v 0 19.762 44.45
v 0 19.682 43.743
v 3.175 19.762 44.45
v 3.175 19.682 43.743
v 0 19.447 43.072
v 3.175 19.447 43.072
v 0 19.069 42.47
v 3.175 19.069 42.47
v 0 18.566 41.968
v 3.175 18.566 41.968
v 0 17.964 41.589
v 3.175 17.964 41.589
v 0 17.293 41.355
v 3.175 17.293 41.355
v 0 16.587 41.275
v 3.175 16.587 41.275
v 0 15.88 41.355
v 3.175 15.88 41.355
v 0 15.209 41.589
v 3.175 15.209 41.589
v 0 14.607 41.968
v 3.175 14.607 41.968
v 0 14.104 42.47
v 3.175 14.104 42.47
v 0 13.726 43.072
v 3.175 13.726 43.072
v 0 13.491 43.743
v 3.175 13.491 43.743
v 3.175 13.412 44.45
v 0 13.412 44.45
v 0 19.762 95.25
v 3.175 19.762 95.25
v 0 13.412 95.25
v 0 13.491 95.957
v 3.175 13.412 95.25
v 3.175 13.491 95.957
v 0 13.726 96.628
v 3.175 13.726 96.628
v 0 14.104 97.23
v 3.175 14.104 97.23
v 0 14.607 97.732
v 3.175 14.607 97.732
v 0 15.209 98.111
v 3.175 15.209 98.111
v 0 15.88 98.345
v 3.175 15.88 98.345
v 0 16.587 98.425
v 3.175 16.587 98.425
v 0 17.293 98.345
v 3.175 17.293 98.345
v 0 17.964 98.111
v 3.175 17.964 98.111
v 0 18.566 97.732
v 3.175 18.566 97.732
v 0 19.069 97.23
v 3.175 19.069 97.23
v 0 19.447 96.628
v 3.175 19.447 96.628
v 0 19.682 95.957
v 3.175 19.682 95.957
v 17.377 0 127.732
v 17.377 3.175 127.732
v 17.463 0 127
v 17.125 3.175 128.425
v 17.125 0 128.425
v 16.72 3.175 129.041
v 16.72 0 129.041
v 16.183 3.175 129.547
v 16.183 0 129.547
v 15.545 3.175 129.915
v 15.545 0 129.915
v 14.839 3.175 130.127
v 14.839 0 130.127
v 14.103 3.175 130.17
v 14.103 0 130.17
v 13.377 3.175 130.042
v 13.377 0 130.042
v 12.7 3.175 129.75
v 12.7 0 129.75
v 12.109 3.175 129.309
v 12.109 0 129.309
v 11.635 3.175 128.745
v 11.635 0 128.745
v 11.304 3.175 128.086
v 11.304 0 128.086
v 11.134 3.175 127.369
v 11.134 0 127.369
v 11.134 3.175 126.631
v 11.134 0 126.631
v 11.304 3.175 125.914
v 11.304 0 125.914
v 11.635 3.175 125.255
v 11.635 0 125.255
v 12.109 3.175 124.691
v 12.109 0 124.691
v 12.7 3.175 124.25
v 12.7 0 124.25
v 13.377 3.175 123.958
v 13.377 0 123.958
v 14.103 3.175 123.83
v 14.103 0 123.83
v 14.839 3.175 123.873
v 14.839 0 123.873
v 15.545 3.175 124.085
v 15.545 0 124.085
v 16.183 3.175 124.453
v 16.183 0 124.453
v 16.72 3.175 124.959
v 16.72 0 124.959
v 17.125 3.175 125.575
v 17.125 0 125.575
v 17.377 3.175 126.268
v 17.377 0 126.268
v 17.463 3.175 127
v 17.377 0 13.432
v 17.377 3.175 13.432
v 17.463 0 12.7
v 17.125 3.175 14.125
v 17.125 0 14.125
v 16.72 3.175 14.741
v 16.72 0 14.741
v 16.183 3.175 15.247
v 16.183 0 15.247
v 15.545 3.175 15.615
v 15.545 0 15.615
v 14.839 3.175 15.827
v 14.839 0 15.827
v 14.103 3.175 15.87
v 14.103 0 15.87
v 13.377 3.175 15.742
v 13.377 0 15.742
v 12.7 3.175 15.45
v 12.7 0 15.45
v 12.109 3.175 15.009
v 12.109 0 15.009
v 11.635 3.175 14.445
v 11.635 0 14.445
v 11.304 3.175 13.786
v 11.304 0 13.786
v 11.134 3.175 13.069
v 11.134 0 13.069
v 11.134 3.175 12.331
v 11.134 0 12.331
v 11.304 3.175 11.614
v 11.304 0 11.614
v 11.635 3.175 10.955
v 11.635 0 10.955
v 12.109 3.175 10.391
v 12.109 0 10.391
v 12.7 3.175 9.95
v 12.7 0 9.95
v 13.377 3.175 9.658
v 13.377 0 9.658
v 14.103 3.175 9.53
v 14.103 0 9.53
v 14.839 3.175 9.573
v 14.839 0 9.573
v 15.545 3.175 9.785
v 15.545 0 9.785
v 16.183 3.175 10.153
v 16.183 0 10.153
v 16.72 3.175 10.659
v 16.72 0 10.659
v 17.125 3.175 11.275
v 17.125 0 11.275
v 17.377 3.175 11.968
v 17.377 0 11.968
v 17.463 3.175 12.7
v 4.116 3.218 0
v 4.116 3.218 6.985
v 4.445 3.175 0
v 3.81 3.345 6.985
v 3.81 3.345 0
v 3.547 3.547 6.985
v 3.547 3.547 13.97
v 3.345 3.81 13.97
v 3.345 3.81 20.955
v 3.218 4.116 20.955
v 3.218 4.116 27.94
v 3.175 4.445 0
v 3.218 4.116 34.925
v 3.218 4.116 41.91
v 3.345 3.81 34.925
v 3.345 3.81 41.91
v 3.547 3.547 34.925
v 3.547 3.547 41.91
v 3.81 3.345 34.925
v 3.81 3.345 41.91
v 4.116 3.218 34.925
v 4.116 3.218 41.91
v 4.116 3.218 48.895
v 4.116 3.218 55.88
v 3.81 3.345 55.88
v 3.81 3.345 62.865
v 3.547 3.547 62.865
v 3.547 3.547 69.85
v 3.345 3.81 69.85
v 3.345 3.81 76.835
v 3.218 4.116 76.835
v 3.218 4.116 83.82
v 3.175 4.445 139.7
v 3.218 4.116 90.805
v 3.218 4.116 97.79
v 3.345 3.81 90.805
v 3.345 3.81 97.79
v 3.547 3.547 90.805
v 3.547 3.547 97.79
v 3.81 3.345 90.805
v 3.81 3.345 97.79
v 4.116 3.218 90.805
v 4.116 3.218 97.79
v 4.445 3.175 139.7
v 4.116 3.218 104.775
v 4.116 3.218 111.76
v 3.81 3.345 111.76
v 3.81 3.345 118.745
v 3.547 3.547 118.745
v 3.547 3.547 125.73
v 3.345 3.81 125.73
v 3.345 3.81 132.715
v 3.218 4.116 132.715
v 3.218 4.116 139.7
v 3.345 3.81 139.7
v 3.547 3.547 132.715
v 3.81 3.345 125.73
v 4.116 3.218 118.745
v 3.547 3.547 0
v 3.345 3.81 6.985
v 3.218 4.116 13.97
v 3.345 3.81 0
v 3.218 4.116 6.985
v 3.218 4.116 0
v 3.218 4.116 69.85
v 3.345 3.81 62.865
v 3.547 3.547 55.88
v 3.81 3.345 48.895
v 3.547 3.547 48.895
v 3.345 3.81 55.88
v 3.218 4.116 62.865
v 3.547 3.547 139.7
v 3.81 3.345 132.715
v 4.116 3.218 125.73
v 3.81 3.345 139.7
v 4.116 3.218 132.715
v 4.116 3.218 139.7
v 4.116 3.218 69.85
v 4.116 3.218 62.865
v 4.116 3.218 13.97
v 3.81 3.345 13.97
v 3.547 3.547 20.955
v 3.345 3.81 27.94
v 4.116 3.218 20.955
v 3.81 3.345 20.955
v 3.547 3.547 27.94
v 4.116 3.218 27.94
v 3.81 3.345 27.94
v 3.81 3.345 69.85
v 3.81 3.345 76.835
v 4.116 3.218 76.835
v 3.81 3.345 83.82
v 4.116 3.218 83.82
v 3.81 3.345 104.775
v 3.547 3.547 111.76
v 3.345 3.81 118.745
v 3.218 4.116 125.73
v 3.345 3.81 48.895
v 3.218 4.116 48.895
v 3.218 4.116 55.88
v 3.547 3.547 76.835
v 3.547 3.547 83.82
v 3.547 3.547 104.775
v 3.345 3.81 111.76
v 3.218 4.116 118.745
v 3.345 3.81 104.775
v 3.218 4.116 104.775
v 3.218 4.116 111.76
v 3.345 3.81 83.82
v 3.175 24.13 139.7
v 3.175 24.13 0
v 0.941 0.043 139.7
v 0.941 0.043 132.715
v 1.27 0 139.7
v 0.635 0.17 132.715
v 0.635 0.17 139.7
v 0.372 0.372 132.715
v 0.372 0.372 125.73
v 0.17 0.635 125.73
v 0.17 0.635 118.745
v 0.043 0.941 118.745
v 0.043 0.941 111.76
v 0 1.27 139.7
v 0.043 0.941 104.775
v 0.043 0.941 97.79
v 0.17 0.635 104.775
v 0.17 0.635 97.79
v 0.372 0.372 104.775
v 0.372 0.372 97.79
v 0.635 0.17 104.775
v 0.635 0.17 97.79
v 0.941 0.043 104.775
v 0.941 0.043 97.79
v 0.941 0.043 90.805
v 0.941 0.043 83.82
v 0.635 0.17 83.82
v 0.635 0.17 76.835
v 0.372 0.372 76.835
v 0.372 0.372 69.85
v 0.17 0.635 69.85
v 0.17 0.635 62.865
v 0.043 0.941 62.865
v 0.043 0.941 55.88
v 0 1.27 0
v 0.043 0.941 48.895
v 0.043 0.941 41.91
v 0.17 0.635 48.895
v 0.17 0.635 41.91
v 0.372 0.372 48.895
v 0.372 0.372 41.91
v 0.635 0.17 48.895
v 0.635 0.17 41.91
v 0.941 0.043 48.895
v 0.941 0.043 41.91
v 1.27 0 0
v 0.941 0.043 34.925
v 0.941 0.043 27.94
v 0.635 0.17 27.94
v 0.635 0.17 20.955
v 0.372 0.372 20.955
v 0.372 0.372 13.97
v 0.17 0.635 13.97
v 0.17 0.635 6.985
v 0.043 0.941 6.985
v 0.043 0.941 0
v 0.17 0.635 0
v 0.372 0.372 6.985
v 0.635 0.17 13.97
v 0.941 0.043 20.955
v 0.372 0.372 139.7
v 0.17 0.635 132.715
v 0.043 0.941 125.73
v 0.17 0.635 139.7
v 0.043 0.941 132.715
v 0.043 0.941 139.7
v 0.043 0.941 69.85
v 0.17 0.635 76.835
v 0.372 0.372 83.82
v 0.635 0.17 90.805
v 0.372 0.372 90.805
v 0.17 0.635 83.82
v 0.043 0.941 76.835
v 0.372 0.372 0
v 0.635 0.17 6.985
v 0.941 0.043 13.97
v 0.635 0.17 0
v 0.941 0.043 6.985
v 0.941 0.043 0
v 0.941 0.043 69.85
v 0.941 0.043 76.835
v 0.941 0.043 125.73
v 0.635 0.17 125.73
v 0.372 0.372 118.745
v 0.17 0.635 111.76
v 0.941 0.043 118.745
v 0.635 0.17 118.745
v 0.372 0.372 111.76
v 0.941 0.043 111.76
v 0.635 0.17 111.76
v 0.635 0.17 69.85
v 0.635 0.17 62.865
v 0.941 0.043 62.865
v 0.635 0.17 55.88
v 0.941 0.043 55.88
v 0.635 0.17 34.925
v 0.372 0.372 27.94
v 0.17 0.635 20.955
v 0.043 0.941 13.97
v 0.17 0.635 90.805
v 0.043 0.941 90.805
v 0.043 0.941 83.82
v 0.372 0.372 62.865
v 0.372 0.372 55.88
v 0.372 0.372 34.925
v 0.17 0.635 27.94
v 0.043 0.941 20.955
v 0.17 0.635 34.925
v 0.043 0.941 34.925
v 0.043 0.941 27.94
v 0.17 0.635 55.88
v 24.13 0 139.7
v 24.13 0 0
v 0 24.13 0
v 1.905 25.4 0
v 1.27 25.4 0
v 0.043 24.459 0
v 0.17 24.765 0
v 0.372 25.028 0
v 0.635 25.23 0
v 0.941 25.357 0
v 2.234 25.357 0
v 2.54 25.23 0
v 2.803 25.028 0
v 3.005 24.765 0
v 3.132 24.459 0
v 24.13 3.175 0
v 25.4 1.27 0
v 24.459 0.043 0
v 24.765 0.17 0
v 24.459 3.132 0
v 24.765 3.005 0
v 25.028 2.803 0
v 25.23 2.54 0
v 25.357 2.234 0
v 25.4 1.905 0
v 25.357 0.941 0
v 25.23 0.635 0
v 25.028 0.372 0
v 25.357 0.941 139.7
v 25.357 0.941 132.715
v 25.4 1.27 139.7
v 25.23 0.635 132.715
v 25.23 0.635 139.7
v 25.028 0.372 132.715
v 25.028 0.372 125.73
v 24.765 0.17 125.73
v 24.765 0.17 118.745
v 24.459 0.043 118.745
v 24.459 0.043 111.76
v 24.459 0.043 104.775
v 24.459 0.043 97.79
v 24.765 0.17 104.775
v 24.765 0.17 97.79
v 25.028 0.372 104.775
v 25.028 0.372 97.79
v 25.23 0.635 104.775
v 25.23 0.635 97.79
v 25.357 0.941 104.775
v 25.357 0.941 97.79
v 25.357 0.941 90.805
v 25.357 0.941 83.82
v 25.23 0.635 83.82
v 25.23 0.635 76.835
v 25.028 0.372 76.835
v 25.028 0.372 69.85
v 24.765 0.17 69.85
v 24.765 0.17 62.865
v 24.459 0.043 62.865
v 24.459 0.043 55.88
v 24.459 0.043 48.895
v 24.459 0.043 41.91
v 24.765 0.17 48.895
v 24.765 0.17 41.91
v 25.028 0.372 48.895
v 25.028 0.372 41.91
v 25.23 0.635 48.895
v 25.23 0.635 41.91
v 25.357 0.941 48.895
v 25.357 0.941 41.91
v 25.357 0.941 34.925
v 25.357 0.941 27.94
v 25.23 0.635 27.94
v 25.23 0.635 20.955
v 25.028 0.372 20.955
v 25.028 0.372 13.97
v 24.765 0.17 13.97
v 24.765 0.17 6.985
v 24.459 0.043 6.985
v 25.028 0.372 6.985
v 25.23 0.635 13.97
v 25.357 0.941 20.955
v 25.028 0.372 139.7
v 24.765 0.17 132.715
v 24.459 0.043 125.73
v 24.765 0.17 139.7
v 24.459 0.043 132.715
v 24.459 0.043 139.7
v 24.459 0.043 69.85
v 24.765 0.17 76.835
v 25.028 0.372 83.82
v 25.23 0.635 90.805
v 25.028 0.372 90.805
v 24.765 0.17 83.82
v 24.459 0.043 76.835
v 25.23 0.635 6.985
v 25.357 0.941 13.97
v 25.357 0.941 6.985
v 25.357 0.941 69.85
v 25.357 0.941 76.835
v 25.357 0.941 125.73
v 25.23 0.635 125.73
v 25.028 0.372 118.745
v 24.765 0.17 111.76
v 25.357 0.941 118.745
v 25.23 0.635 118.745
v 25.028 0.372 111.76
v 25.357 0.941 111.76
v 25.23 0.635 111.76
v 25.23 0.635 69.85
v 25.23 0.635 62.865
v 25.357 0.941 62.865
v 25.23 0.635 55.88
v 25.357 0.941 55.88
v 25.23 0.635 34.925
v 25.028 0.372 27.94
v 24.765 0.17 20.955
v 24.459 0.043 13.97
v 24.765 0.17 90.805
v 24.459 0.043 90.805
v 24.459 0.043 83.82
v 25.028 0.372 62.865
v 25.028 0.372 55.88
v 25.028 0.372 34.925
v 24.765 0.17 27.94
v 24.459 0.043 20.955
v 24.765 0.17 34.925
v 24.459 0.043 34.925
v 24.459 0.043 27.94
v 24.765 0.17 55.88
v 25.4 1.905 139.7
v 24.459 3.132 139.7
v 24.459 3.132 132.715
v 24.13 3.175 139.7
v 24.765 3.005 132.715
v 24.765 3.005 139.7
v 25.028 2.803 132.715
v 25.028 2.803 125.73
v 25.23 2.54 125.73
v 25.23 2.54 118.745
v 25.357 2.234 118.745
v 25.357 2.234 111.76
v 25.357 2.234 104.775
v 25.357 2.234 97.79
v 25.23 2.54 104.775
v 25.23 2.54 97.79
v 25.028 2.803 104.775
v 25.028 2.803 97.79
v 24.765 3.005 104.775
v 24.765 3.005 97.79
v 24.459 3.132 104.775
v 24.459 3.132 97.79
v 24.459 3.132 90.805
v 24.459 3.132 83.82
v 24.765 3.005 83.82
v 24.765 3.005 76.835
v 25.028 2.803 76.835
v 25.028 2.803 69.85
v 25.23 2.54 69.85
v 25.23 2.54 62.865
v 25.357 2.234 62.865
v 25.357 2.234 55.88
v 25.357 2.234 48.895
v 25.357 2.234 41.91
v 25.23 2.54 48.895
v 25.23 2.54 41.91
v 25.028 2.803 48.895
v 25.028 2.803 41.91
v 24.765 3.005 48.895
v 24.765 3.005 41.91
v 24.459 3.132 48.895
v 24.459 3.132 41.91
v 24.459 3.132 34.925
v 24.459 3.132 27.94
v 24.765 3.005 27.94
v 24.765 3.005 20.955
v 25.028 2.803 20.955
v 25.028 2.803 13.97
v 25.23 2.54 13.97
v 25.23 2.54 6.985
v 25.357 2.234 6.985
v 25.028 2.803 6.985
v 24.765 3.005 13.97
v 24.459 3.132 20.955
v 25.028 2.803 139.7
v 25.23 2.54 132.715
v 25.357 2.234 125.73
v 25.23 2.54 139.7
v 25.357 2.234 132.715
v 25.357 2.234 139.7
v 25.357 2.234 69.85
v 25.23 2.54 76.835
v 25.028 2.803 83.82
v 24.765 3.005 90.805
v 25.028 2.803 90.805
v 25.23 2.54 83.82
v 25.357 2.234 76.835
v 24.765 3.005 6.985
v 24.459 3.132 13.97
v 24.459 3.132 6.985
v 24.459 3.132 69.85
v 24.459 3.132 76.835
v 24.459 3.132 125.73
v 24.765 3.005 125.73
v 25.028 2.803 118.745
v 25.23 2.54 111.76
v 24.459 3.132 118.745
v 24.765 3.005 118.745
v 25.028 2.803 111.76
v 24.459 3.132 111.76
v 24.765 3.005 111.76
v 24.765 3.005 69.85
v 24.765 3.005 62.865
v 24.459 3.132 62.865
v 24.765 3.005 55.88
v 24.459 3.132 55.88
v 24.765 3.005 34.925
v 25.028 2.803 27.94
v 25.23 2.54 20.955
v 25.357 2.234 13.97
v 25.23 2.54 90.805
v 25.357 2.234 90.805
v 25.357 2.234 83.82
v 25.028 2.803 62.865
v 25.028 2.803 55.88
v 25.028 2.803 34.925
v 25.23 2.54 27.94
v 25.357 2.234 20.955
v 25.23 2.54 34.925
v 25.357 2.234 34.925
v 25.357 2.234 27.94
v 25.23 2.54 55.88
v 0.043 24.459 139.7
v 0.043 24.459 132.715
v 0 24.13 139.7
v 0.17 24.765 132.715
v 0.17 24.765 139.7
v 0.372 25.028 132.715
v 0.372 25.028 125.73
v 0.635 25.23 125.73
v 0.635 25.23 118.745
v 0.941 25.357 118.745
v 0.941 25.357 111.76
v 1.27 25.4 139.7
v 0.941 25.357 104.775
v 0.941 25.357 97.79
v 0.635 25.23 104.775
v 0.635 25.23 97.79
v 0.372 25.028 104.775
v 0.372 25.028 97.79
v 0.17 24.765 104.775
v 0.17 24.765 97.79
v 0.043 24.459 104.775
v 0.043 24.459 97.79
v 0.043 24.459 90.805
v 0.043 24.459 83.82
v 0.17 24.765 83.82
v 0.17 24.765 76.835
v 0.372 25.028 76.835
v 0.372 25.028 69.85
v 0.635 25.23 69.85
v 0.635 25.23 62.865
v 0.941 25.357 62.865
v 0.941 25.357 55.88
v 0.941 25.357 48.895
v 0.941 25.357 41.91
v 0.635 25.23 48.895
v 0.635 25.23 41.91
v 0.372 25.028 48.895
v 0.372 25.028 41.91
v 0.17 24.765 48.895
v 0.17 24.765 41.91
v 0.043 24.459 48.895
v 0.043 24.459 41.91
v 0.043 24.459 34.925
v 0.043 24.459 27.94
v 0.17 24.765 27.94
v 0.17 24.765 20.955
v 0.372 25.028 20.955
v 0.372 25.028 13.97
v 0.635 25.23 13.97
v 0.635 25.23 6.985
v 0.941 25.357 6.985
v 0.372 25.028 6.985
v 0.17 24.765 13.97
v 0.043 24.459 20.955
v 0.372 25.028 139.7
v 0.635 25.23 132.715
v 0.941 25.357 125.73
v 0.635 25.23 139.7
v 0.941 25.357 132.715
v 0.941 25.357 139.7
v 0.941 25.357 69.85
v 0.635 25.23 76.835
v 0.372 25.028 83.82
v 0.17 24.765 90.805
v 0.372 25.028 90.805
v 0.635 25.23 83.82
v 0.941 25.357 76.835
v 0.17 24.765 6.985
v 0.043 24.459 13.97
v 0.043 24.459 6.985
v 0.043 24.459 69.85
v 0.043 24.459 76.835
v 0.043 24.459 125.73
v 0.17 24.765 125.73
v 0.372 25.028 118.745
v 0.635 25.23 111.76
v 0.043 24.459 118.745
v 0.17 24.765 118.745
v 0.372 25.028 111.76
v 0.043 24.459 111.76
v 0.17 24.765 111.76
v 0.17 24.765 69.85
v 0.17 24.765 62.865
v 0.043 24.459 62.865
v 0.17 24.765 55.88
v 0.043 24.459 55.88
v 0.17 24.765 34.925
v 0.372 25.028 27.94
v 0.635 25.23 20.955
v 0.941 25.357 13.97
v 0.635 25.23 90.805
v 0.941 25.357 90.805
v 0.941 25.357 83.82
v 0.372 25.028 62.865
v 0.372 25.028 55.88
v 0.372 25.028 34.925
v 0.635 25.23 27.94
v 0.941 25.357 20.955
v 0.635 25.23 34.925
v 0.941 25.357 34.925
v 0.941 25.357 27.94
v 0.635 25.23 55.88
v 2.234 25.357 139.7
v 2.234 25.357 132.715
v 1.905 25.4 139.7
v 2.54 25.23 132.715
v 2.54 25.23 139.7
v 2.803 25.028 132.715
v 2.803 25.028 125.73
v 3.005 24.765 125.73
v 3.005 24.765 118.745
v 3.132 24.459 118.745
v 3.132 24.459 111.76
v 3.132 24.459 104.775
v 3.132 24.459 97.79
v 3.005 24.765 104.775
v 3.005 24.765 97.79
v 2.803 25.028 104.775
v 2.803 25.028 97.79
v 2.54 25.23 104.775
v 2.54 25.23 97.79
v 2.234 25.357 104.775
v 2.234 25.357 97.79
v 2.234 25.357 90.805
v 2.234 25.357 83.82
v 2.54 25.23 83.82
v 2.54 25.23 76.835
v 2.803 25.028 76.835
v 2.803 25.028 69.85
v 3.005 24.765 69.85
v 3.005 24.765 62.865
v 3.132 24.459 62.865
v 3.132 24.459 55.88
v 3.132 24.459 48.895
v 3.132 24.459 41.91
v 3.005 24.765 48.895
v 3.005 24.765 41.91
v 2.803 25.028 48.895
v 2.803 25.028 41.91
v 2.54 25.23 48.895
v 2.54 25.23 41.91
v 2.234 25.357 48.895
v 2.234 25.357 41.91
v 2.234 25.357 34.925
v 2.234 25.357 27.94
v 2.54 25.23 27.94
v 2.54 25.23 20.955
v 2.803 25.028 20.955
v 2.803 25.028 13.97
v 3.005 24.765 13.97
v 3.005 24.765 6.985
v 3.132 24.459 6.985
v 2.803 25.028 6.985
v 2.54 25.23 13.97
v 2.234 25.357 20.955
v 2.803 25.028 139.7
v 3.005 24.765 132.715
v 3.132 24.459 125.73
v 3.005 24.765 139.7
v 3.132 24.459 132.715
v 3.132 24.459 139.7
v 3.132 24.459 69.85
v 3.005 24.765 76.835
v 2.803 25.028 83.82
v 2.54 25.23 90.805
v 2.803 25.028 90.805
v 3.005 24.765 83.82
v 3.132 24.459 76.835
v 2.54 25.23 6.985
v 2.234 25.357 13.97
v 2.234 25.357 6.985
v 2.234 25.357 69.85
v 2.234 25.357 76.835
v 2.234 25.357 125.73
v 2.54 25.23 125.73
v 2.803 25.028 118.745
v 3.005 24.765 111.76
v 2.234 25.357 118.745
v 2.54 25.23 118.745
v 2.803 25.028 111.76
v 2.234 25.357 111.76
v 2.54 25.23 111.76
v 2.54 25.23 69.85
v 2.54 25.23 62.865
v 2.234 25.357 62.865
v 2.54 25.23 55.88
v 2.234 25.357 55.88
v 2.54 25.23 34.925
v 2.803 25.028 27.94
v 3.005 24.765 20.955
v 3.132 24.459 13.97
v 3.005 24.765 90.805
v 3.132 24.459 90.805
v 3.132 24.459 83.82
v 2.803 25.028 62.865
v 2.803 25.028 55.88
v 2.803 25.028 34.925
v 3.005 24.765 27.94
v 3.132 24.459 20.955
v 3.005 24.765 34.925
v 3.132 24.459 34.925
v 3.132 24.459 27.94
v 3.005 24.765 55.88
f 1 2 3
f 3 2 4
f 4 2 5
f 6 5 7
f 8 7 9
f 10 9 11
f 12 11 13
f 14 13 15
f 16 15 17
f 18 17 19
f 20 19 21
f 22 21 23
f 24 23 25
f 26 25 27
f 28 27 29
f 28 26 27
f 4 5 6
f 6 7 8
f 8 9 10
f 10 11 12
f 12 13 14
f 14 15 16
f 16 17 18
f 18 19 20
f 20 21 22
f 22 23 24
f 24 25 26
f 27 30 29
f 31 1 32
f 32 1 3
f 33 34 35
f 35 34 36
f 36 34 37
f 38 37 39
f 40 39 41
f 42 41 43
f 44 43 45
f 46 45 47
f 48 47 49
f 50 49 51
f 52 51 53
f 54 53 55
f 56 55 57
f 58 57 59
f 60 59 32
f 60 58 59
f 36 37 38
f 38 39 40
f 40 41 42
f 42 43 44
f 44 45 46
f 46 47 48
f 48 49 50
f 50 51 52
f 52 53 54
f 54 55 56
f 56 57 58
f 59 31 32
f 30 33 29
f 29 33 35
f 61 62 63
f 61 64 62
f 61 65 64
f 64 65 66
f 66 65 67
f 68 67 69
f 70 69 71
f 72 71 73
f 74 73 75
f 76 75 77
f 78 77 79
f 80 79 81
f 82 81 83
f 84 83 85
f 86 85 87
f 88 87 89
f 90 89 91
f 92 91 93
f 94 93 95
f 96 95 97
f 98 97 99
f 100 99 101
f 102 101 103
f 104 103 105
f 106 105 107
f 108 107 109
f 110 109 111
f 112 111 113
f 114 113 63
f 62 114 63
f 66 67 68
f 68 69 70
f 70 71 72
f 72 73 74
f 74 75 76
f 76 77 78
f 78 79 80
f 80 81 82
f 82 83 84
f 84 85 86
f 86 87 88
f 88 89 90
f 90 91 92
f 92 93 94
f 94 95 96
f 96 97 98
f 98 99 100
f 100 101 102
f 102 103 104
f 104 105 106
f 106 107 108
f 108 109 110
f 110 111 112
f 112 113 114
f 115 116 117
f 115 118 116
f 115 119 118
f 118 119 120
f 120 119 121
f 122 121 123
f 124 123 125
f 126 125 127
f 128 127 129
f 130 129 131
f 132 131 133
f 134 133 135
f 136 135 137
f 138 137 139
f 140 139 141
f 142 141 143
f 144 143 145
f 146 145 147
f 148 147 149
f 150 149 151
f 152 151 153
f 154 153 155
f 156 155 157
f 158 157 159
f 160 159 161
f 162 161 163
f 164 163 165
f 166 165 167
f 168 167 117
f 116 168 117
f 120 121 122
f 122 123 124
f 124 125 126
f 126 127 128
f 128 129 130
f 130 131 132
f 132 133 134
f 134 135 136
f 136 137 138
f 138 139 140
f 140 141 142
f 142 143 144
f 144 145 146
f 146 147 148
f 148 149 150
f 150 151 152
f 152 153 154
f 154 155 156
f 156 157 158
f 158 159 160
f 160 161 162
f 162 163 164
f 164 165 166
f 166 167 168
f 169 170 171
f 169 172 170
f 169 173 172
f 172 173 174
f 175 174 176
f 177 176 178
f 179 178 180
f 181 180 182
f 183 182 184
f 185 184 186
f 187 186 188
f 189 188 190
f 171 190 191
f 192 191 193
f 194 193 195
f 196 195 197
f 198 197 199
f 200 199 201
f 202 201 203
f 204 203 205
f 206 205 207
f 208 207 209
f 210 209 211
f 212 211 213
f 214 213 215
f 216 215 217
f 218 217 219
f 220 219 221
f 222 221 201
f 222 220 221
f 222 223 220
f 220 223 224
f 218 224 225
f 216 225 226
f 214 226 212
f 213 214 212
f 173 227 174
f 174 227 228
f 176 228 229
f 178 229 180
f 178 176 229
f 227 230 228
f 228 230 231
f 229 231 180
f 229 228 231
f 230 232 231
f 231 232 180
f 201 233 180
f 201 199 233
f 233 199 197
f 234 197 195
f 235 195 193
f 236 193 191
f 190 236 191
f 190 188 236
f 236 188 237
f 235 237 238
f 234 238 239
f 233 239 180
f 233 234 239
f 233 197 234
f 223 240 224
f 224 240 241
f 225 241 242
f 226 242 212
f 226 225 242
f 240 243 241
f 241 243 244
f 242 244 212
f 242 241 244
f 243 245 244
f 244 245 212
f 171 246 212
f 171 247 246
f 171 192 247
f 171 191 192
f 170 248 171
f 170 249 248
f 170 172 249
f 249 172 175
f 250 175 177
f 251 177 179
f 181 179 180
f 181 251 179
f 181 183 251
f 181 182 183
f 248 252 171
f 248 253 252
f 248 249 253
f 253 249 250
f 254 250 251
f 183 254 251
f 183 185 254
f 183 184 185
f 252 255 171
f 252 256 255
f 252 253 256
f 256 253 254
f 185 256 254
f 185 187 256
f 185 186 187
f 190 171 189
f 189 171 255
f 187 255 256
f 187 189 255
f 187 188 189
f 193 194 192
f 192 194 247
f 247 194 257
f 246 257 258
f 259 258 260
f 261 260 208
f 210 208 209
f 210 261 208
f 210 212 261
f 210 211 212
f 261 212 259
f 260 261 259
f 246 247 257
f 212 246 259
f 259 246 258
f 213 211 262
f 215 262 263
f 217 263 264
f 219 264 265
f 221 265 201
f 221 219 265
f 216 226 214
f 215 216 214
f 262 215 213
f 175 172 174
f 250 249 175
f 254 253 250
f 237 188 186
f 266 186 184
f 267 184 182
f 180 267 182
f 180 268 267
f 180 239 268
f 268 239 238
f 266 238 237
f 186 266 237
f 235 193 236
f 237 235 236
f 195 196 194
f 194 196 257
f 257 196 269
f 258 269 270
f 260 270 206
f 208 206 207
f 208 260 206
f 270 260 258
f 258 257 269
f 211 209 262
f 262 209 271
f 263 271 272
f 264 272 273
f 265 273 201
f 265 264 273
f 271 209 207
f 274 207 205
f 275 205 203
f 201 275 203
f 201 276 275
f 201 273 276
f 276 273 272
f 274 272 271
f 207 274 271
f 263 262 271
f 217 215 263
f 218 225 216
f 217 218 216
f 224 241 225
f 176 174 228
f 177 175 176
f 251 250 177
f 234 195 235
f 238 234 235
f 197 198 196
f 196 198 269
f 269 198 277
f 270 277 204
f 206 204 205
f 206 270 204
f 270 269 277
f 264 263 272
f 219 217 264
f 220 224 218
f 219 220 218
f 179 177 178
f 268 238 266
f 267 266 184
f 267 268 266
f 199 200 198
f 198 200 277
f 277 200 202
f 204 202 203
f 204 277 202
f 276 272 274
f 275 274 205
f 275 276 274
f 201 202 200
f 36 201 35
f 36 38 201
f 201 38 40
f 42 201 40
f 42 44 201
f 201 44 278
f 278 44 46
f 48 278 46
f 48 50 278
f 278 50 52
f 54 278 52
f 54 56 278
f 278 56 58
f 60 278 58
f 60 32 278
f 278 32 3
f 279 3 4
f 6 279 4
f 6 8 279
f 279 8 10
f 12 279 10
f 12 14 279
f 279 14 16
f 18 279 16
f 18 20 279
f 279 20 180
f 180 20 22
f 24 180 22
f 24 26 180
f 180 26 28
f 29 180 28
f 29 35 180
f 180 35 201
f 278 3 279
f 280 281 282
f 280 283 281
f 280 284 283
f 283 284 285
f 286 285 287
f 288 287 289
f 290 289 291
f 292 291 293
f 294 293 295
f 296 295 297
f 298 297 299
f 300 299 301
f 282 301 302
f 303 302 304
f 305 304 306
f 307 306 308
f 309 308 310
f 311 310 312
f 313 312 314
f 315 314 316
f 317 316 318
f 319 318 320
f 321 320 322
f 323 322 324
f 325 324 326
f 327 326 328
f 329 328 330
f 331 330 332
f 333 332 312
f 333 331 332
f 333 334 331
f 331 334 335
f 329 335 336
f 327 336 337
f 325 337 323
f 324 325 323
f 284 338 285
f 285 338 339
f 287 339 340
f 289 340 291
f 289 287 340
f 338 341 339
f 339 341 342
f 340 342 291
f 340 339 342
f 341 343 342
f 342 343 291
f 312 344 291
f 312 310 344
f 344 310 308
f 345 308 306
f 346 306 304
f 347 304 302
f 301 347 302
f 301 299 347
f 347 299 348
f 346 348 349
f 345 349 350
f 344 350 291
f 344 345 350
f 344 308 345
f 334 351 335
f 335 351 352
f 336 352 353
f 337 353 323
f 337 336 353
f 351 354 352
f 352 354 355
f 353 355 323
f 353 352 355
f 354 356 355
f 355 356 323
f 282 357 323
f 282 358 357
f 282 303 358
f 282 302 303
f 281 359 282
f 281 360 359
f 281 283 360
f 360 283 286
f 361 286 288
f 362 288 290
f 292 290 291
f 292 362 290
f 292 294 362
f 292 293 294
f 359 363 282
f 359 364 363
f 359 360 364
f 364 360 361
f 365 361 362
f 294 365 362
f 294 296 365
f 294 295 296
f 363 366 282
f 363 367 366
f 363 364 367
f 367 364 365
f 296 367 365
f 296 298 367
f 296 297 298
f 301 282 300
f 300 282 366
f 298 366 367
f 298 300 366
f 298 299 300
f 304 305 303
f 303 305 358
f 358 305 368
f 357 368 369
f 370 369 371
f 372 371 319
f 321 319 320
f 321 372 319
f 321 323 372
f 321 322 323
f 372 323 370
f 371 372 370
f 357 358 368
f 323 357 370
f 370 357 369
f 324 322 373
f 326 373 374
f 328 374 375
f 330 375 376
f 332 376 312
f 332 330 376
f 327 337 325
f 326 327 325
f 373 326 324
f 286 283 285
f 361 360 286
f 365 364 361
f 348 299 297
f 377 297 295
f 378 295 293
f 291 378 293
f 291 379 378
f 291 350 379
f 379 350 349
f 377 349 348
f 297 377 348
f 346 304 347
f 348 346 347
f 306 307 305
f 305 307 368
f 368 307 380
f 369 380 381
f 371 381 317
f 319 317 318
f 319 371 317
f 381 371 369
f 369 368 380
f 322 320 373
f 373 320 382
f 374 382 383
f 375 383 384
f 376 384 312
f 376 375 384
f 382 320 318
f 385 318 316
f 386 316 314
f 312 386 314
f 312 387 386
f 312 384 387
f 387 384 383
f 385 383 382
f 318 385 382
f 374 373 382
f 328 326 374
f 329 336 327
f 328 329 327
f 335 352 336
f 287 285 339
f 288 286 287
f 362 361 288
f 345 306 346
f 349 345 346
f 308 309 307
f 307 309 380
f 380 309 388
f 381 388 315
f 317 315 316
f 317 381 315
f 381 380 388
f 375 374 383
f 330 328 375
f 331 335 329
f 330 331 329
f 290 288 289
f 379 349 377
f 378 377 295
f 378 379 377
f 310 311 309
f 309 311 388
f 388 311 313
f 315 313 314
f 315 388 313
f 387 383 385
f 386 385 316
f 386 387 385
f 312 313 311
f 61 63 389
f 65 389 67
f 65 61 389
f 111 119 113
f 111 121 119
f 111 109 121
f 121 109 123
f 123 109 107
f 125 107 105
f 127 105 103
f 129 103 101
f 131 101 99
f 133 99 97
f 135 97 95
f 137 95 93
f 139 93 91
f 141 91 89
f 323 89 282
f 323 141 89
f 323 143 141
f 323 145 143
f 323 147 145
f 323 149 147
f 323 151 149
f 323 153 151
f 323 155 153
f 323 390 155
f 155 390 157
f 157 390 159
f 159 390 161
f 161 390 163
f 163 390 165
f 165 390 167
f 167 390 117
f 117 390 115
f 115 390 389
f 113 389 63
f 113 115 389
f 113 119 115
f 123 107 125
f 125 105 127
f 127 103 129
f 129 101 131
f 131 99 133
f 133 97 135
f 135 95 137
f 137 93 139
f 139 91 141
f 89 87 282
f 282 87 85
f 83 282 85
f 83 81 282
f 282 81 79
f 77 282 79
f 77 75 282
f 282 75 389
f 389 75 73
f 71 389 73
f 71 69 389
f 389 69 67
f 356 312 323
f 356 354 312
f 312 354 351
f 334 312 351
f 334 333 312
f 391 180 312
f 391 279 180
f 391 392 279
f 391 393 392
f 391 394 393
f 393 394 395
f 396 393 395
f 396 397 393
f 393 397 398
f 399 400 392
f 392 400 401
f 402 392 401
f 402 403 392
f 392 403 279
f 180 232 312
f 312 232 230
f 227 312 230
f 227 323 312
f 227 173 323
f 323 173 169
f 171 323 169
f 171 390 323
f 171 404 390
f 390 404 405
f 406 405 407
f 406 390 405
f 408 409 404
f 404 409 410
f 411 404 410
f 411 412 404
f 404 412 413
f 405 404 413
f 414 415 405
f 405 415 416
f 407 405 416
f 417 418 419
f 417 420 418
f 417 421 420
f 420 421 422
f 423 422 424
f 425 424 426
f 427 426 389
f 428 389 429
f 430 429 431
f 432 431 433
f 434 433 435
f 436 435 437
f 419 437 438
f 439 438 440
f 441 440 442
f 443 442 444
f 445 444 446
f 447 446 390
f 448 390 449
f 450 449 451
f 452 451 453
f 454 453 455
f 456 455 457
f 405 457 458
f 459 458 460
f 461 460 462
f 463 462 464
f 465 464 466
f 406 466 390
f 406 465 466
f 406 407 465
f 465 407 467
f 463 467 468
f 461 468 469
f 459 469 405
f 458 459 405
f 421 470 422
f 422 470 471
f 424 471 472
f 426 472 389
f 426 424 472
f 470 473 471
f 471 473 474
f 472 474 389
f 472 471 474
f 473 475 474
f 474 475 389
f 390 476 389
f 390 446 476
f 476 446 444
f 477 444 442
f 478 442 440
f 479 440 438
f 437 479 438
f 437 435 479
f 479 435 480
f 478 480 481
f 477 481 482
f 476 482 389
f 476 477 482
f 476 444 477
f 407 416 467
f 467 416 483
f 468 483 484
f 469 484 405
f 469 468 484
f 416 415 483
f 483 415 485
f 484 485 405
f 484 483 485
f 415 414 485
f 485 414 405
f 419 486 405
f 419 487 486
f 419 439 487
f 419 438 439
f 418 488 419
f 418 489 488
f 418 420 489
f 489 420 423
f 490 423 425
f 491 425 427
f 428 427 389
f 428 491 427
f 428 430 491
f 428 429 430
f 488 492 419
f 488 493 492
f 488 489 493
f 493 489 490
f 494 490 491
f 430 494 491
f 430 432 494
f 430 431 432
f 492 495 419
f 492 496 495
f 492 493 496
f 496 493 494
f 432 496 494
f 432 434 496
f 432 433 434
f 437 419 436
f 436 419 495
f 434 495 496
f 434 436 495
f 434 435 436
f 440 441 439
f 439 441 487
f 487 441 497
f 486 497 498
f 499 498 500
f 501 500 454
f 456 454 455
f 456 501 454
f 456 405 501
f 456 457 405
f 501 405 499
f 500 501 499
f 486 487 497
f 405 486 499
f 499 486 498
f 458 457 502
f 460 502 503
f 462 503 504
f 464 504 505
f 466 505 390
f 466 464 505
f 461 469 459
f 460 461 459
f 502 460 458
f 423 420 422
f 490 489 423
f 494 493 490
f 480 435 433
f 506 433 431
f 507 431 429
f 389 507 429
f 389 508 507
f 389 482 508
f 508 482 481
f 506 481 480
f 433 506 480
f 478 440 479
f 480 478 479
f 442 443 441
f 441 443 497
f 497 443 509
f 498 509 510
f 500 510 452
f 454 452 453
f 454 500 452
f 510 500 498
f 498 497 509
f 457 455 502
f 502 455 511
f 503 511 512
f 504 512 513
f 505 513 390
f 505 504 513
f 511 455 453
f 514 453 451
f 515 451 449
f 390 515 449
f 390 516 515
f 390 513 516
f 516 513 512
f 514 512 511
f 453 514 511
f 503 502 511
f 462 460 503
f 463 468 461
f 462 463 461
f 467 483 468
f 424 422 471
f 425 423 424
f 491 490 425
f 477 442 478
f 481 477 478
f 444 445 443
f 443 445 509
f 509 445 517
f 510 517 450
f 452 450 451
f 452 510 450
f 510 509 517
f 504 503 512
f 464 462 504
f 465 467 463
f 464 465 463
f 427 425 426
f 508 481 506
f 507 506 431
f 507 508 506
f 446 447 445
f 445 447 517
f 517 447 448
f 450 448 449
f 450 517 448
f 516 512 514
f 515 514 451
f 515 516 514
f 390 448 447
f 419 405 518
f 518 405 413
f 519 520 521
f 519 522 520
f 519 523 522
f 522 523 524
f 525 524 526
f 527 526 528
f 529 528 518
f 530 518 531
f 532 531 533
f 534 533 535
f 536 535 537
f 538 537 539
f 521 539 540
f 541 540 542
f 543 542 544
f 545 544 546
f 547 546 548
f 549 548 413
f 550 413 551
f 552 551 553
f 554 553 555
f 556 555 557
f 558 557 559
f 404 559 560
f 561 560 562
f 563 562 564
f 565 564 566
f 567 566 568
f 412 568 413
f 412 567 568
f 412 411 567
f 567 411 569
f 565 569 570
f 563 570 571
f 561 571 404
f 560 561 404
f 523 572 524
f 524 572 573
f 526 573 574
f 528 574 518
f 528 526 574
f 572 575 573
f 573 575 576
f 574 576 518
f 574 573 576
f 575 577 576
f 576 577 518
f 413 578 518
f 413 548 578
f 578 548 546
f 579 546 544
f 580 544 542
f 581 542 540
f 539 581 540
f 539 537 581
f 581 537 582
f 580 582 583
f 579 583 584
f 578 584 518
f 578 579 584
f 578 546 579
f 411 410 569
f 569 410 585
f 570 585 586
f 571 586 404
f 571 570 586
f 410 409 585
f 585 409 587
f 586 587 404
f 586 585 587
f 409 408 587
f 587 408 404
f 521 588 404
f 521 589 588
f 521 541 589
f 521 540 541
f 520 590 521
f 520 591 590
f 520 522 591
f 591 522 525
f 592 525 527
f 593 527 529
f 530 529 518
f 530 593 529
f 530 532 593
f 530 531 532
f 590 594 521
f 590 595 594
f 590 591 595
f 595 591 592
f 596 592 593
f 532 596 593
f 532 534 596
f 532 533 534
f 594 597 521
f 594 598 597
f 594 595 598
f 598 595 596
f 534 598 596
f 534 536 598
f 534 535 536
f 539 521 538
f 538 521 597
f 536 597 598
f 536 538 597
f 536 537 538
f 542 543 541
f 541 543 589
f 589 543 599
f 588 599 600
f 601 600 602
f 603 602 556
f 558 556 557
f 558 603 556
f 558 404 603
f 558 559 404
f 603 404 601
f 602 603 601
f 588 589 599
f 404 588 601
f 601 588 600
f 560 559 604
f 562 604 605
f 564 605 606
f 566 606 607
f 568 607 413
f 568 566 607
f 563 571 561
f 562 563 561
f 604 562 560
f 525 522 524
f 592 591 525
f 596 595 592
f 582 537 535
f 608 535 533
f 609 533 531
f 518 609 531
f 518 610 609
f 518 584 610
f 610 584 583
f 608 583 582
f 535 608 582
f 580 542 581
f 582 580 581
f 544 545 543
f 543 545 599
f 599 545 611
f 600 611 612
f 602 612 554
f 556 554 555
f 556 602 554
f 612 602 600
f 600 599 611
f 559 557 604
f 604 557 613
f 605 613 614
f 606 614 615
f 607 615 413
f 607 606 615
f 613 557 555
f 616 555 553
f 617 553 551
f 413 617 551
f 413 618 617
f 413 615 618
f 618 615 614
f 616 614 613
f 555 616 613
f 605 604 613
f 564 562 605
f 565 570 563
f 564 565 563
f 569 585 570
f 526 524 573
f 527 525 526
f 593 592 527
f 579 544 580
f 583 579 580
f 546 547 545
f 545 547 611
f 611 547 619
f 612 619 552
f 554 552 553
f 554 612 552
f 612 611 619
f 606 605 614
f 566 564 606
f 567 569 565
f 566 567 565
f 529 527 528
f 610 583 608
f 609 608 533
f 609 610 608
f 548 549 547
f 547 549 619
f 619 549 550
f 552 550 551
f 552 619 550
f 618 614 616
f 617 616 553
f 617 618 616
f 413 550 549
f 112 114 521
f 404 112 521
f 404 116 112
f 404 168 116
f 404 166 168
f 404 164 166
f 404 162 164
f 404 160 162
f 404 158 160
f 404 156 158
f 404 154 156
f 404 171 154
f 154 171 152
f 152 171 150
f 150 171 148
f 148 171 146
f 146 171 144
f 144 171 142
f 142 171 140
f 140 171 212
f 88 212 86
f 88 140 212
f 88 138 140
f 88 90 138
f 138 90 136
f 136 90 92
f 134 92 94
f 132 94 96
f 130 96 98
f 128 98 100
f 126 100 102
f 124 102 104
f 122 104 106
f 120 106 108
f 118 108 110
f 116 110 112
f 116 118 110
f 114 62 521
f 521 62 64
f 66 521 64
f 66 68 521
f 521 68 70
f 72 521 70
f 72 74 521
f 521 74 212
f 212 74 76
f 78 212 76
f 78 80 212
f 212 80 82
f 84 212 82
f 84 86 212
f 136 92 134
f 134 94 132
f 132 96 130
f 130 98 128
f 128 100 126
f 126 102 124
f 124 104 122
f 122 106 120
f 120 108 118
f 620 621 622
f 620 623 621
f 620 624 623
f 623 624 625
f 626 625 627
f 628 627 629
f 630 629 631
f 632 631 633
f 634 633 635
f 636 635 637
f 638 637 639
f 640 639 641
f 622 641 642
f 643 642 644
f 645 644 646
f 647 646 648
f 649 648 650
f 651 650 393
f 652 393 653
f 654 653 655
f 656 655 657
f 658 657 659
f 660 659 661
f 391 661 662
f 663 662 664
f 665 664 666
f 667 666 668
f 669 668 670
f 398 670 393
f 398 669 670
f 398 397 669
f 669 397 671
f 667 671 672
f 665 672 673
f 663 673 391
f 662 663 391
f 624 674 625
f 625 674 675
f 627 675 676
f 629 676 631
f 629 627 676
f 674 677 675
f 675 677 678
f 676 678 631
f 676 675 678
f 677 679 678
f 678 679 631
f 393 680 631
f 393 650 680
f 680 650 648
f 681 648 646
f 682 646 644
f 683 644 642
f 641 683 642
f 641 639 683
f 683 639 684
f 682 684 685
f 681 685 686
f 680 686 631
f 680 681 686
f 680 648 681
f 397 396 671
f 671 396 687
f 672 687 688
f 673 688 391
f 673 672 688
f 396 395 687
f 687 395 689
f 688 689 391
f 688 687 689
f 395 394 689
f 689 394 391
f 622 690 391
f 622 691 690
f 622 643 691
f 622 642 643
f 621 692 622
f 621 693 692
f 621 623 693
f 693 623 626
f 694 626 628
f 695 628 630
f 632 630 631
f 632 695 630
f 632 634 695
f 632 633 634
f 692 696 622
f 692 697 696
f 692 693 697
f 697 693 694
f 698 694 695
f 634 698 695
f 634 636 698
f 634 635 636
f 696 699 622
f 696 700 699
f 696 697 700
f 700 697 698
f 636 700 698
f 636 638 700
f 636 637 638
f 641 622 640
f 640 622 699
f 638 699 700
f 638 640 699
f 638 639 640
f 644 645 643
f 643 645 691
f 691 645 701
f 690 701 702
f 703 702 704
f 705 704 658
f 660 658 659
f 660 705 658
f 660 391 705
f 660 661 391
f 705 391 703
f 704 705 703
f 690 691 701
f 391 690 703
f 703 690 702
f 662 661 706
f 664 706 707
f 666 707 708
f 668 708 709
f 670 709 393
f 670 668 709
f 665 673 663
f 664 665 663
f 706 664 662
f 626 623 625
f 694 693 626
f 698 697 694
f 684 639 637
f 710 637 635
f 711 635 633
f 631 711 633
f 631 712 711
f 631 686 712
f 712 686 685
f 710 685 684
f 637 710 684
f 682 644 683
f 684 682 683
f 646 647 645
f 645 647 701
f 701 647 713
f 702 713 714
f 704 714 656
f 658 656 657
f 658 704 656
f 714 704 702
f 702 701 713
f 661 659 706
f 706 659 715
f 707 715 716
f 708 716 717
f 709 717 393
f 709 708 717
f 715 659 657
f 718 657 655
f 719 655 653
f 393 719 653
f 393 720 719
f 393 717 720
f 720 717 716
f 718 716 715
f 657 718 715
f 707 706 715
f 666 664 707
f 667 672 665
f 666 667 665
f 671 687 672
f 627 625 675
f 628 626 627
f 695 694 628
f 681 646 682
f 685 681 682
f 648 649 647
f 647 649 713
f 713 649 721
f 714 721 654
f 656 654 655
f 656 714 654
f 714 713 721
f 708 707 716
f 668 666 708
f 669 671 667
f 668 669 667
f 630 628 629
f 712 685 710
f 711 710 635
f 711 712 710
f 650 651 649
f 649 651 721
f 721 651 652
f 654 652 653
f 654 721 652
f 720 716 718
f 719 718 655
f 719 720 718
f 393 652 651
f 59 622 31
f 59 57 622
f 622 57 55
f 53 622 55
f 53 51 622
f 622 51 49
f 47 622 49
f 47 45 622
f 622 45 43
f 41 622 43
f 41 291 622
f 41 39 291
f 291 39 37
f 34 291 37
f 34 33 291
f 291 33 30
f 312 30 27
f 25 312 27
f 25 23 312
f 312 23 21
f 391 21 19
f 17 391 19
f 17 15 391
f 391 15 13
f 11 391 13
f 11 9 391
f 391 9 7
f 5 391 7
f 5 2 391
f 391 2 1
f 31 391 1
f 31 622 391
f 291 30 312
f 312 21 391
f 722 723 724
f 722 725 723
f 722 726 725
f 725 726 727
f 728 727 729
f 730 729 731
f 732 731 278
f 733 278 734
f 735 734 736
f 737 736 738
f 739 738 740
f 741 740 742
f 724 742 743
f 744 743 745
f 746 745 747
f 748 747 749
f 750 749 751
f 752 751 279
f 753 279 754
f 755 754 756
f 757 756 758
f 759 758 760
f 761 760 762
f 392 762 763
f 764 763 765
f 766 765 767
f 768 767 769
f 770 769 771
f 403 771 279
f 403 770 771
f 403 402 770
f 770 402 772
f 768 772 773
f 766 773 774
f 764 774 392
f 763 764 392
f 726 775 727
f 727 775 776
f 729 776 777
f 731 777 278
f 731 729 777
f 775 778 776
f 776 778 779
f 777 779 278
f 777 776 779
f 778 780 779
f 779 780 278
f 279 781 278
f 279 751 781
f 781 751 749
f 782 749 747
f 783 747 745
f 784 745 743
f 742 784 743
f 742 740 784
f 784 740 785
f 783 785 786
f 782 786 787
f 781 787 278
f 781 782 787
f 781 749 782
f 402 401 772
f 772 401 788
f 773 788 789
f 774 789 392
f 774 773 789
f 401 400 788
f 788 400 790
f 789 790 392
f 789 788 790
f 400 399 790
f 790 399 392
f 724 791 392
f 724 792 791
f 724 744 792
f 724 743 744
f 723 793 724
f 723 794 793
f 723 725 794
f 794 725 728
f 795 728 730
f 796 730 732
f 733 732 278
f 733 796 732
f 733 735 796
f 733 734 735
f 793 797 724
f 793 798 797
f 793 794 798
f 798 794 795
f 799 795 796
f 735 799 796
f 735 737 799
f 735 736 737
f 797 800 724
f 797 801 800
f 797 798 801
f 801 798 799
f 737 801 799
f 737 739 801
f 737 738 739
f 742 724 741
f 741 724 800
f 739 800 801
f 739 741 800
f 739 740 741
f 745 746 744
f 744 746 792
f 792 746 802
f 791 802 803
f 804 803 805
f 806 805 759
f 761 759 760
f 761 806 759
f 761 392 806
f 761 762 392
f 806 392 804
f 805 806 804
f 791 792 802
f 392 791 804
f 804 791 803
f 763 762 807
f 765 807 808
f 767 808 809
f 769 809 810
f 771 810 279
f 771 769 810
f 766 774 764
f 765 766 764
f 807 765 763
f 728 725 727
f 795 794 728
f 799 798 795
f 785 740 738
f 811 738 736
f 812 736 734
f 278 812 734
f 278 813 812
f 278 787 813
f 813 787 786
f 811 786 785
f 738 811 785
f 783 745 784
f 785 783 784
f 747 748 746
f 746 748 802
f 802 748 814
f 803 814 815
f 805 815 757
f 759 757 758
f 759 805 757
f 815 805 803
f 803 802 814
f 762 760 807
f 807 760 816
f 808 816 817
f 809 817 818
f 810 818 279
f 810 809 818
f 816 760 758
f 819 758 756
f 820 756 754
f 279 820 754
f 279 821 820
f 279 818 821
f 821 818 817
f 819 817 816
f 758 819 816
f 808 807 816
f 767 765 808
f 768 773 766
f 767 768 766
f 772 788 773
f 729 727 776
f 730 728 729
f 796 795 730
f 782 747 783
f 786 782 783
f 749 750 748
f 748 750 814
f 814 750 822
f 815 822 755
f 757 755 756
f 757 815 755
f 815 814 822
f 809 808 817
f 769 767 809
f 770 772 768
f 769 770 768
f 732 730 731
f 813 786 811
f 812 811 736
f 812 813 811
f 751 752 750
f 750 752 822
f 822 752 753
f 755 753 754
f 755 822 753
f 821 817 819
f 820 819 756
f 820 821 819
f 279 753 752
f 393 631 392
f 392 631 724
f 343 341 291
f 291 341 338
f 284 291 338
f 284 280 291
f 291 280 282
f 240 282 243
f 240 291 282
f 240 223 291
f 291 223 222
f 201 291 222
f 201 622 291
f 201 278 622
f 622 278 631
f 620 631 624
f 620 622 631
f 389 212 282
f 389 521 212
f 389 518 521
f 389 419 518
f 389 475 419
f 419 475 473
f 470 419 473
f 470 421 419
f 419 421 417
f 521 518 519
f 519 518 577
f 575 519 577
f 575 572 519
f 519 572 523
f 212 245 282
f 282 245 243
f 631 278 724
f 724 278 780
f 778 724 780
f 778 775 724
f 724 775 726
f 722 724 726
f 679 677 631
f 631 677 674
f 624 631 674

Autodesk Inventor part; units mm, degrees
ref_plane "YZ Plane" through (0, 0, 0) normal (1, 0, 0) x (0, 1, 0)
ref_plane "XZ Plane" through (0, 0, 0) normal (0, 1, 0) x (-1, 0, 0)
ref_plane "XY Plane" through (0, 0, 0) normal (0, 0, 1) x (1, 0, 0)
sketch "Sketch1" plane through (0, 0, 0) normal (0, 0, 1) x (1, 0, 0)
  line L0 (0, 0) -> (25.4, 0)
  line L1 (25.4, 0) -> (25.4, 3.175)
  line L2 (3.175, 25.4) -> (0, 25.4)
  line L3 (0, 25.4) -> (0, 0)
  line L4 (3.175, 25.4) -> (3.175, 3.175)
  line L5 (3.175, 3.175) -> (25.4, 3.175)
  dimension "d1" = 25.4
  dimension "d2" = 3.175
  dimension "d3" = 3.175
  dimension "d4" = 25.4
extrude "Extrusion1" add sketch "Sketch1" along normal blind 139.7
fillet "Fillet1" radius 1.27 1 edges at (3.175, 25.4, 69.85)
fillet "Fillet2" radius 1.27 5 edges at (0, 25.4, 69.85) (25.4, 3.175, 69.85) (25.4, 0, 69.85) (0, 0, 69.85) (3.175, 3.175, 69.85)
sketch "Sketch2" plane through (4.445, 3.175, 0) normal (0, 1, 0) x (1, 0, 0)
  line L0 (0, -139.7) -> (19.685, -139.7) projected
  line L1 (19.685, 0) -> (0, 0) projected
  circle A0 centre (9.8425, -12.7) radius 3.175
  circle A1 centre (9.8425, -127) radius 3.175
  point P0 (-4.445, 0)
  dimension "d9" = 6.35
  dimension "d10" = 6.35
  dimension "d11" = 12.7
  dimension "d12" = 12.7
extrude "Extrusion2" cut sketch "Sketch2" against normal blind 152.4
sketch "Sketch3" plane through (3.175, 24.13, 139.7) normal (1, 0, 0) x (0, 0, -1)
  line L0 (44.45, -4.3683) -> (95.25, -4.3683)
  line L1 (95.25, -10.7183) -> (44.45, -10.7183)
  arc A0 (44.45, -4.3683) -> (44.45, -10.7183) centre (44.45, -7.5433) ccw
  arc A1 (95.25, -10.7183) -> (95.25, -4.3683) centre (95.25, -7.5433) ccw
  line L2 (139.7, -19.685) -> (139.7, 0) projected
  point P0 (139.7, -24.13)
  point P1 (0, 0)
  dimension "d20" = 44.45
  dimension "d21" = 50.8
  dimension "d22" = 139.7
extrude "Extrusion3" cut sketch "Sketch3" against normal blind 152.4
equation "\"d3\" = d2"
equation "\"d12\" = d11"
equation "\"d20\" = -0.5 * d21 + 0.5 * d22"
properties part number "BatteryMountSide"
